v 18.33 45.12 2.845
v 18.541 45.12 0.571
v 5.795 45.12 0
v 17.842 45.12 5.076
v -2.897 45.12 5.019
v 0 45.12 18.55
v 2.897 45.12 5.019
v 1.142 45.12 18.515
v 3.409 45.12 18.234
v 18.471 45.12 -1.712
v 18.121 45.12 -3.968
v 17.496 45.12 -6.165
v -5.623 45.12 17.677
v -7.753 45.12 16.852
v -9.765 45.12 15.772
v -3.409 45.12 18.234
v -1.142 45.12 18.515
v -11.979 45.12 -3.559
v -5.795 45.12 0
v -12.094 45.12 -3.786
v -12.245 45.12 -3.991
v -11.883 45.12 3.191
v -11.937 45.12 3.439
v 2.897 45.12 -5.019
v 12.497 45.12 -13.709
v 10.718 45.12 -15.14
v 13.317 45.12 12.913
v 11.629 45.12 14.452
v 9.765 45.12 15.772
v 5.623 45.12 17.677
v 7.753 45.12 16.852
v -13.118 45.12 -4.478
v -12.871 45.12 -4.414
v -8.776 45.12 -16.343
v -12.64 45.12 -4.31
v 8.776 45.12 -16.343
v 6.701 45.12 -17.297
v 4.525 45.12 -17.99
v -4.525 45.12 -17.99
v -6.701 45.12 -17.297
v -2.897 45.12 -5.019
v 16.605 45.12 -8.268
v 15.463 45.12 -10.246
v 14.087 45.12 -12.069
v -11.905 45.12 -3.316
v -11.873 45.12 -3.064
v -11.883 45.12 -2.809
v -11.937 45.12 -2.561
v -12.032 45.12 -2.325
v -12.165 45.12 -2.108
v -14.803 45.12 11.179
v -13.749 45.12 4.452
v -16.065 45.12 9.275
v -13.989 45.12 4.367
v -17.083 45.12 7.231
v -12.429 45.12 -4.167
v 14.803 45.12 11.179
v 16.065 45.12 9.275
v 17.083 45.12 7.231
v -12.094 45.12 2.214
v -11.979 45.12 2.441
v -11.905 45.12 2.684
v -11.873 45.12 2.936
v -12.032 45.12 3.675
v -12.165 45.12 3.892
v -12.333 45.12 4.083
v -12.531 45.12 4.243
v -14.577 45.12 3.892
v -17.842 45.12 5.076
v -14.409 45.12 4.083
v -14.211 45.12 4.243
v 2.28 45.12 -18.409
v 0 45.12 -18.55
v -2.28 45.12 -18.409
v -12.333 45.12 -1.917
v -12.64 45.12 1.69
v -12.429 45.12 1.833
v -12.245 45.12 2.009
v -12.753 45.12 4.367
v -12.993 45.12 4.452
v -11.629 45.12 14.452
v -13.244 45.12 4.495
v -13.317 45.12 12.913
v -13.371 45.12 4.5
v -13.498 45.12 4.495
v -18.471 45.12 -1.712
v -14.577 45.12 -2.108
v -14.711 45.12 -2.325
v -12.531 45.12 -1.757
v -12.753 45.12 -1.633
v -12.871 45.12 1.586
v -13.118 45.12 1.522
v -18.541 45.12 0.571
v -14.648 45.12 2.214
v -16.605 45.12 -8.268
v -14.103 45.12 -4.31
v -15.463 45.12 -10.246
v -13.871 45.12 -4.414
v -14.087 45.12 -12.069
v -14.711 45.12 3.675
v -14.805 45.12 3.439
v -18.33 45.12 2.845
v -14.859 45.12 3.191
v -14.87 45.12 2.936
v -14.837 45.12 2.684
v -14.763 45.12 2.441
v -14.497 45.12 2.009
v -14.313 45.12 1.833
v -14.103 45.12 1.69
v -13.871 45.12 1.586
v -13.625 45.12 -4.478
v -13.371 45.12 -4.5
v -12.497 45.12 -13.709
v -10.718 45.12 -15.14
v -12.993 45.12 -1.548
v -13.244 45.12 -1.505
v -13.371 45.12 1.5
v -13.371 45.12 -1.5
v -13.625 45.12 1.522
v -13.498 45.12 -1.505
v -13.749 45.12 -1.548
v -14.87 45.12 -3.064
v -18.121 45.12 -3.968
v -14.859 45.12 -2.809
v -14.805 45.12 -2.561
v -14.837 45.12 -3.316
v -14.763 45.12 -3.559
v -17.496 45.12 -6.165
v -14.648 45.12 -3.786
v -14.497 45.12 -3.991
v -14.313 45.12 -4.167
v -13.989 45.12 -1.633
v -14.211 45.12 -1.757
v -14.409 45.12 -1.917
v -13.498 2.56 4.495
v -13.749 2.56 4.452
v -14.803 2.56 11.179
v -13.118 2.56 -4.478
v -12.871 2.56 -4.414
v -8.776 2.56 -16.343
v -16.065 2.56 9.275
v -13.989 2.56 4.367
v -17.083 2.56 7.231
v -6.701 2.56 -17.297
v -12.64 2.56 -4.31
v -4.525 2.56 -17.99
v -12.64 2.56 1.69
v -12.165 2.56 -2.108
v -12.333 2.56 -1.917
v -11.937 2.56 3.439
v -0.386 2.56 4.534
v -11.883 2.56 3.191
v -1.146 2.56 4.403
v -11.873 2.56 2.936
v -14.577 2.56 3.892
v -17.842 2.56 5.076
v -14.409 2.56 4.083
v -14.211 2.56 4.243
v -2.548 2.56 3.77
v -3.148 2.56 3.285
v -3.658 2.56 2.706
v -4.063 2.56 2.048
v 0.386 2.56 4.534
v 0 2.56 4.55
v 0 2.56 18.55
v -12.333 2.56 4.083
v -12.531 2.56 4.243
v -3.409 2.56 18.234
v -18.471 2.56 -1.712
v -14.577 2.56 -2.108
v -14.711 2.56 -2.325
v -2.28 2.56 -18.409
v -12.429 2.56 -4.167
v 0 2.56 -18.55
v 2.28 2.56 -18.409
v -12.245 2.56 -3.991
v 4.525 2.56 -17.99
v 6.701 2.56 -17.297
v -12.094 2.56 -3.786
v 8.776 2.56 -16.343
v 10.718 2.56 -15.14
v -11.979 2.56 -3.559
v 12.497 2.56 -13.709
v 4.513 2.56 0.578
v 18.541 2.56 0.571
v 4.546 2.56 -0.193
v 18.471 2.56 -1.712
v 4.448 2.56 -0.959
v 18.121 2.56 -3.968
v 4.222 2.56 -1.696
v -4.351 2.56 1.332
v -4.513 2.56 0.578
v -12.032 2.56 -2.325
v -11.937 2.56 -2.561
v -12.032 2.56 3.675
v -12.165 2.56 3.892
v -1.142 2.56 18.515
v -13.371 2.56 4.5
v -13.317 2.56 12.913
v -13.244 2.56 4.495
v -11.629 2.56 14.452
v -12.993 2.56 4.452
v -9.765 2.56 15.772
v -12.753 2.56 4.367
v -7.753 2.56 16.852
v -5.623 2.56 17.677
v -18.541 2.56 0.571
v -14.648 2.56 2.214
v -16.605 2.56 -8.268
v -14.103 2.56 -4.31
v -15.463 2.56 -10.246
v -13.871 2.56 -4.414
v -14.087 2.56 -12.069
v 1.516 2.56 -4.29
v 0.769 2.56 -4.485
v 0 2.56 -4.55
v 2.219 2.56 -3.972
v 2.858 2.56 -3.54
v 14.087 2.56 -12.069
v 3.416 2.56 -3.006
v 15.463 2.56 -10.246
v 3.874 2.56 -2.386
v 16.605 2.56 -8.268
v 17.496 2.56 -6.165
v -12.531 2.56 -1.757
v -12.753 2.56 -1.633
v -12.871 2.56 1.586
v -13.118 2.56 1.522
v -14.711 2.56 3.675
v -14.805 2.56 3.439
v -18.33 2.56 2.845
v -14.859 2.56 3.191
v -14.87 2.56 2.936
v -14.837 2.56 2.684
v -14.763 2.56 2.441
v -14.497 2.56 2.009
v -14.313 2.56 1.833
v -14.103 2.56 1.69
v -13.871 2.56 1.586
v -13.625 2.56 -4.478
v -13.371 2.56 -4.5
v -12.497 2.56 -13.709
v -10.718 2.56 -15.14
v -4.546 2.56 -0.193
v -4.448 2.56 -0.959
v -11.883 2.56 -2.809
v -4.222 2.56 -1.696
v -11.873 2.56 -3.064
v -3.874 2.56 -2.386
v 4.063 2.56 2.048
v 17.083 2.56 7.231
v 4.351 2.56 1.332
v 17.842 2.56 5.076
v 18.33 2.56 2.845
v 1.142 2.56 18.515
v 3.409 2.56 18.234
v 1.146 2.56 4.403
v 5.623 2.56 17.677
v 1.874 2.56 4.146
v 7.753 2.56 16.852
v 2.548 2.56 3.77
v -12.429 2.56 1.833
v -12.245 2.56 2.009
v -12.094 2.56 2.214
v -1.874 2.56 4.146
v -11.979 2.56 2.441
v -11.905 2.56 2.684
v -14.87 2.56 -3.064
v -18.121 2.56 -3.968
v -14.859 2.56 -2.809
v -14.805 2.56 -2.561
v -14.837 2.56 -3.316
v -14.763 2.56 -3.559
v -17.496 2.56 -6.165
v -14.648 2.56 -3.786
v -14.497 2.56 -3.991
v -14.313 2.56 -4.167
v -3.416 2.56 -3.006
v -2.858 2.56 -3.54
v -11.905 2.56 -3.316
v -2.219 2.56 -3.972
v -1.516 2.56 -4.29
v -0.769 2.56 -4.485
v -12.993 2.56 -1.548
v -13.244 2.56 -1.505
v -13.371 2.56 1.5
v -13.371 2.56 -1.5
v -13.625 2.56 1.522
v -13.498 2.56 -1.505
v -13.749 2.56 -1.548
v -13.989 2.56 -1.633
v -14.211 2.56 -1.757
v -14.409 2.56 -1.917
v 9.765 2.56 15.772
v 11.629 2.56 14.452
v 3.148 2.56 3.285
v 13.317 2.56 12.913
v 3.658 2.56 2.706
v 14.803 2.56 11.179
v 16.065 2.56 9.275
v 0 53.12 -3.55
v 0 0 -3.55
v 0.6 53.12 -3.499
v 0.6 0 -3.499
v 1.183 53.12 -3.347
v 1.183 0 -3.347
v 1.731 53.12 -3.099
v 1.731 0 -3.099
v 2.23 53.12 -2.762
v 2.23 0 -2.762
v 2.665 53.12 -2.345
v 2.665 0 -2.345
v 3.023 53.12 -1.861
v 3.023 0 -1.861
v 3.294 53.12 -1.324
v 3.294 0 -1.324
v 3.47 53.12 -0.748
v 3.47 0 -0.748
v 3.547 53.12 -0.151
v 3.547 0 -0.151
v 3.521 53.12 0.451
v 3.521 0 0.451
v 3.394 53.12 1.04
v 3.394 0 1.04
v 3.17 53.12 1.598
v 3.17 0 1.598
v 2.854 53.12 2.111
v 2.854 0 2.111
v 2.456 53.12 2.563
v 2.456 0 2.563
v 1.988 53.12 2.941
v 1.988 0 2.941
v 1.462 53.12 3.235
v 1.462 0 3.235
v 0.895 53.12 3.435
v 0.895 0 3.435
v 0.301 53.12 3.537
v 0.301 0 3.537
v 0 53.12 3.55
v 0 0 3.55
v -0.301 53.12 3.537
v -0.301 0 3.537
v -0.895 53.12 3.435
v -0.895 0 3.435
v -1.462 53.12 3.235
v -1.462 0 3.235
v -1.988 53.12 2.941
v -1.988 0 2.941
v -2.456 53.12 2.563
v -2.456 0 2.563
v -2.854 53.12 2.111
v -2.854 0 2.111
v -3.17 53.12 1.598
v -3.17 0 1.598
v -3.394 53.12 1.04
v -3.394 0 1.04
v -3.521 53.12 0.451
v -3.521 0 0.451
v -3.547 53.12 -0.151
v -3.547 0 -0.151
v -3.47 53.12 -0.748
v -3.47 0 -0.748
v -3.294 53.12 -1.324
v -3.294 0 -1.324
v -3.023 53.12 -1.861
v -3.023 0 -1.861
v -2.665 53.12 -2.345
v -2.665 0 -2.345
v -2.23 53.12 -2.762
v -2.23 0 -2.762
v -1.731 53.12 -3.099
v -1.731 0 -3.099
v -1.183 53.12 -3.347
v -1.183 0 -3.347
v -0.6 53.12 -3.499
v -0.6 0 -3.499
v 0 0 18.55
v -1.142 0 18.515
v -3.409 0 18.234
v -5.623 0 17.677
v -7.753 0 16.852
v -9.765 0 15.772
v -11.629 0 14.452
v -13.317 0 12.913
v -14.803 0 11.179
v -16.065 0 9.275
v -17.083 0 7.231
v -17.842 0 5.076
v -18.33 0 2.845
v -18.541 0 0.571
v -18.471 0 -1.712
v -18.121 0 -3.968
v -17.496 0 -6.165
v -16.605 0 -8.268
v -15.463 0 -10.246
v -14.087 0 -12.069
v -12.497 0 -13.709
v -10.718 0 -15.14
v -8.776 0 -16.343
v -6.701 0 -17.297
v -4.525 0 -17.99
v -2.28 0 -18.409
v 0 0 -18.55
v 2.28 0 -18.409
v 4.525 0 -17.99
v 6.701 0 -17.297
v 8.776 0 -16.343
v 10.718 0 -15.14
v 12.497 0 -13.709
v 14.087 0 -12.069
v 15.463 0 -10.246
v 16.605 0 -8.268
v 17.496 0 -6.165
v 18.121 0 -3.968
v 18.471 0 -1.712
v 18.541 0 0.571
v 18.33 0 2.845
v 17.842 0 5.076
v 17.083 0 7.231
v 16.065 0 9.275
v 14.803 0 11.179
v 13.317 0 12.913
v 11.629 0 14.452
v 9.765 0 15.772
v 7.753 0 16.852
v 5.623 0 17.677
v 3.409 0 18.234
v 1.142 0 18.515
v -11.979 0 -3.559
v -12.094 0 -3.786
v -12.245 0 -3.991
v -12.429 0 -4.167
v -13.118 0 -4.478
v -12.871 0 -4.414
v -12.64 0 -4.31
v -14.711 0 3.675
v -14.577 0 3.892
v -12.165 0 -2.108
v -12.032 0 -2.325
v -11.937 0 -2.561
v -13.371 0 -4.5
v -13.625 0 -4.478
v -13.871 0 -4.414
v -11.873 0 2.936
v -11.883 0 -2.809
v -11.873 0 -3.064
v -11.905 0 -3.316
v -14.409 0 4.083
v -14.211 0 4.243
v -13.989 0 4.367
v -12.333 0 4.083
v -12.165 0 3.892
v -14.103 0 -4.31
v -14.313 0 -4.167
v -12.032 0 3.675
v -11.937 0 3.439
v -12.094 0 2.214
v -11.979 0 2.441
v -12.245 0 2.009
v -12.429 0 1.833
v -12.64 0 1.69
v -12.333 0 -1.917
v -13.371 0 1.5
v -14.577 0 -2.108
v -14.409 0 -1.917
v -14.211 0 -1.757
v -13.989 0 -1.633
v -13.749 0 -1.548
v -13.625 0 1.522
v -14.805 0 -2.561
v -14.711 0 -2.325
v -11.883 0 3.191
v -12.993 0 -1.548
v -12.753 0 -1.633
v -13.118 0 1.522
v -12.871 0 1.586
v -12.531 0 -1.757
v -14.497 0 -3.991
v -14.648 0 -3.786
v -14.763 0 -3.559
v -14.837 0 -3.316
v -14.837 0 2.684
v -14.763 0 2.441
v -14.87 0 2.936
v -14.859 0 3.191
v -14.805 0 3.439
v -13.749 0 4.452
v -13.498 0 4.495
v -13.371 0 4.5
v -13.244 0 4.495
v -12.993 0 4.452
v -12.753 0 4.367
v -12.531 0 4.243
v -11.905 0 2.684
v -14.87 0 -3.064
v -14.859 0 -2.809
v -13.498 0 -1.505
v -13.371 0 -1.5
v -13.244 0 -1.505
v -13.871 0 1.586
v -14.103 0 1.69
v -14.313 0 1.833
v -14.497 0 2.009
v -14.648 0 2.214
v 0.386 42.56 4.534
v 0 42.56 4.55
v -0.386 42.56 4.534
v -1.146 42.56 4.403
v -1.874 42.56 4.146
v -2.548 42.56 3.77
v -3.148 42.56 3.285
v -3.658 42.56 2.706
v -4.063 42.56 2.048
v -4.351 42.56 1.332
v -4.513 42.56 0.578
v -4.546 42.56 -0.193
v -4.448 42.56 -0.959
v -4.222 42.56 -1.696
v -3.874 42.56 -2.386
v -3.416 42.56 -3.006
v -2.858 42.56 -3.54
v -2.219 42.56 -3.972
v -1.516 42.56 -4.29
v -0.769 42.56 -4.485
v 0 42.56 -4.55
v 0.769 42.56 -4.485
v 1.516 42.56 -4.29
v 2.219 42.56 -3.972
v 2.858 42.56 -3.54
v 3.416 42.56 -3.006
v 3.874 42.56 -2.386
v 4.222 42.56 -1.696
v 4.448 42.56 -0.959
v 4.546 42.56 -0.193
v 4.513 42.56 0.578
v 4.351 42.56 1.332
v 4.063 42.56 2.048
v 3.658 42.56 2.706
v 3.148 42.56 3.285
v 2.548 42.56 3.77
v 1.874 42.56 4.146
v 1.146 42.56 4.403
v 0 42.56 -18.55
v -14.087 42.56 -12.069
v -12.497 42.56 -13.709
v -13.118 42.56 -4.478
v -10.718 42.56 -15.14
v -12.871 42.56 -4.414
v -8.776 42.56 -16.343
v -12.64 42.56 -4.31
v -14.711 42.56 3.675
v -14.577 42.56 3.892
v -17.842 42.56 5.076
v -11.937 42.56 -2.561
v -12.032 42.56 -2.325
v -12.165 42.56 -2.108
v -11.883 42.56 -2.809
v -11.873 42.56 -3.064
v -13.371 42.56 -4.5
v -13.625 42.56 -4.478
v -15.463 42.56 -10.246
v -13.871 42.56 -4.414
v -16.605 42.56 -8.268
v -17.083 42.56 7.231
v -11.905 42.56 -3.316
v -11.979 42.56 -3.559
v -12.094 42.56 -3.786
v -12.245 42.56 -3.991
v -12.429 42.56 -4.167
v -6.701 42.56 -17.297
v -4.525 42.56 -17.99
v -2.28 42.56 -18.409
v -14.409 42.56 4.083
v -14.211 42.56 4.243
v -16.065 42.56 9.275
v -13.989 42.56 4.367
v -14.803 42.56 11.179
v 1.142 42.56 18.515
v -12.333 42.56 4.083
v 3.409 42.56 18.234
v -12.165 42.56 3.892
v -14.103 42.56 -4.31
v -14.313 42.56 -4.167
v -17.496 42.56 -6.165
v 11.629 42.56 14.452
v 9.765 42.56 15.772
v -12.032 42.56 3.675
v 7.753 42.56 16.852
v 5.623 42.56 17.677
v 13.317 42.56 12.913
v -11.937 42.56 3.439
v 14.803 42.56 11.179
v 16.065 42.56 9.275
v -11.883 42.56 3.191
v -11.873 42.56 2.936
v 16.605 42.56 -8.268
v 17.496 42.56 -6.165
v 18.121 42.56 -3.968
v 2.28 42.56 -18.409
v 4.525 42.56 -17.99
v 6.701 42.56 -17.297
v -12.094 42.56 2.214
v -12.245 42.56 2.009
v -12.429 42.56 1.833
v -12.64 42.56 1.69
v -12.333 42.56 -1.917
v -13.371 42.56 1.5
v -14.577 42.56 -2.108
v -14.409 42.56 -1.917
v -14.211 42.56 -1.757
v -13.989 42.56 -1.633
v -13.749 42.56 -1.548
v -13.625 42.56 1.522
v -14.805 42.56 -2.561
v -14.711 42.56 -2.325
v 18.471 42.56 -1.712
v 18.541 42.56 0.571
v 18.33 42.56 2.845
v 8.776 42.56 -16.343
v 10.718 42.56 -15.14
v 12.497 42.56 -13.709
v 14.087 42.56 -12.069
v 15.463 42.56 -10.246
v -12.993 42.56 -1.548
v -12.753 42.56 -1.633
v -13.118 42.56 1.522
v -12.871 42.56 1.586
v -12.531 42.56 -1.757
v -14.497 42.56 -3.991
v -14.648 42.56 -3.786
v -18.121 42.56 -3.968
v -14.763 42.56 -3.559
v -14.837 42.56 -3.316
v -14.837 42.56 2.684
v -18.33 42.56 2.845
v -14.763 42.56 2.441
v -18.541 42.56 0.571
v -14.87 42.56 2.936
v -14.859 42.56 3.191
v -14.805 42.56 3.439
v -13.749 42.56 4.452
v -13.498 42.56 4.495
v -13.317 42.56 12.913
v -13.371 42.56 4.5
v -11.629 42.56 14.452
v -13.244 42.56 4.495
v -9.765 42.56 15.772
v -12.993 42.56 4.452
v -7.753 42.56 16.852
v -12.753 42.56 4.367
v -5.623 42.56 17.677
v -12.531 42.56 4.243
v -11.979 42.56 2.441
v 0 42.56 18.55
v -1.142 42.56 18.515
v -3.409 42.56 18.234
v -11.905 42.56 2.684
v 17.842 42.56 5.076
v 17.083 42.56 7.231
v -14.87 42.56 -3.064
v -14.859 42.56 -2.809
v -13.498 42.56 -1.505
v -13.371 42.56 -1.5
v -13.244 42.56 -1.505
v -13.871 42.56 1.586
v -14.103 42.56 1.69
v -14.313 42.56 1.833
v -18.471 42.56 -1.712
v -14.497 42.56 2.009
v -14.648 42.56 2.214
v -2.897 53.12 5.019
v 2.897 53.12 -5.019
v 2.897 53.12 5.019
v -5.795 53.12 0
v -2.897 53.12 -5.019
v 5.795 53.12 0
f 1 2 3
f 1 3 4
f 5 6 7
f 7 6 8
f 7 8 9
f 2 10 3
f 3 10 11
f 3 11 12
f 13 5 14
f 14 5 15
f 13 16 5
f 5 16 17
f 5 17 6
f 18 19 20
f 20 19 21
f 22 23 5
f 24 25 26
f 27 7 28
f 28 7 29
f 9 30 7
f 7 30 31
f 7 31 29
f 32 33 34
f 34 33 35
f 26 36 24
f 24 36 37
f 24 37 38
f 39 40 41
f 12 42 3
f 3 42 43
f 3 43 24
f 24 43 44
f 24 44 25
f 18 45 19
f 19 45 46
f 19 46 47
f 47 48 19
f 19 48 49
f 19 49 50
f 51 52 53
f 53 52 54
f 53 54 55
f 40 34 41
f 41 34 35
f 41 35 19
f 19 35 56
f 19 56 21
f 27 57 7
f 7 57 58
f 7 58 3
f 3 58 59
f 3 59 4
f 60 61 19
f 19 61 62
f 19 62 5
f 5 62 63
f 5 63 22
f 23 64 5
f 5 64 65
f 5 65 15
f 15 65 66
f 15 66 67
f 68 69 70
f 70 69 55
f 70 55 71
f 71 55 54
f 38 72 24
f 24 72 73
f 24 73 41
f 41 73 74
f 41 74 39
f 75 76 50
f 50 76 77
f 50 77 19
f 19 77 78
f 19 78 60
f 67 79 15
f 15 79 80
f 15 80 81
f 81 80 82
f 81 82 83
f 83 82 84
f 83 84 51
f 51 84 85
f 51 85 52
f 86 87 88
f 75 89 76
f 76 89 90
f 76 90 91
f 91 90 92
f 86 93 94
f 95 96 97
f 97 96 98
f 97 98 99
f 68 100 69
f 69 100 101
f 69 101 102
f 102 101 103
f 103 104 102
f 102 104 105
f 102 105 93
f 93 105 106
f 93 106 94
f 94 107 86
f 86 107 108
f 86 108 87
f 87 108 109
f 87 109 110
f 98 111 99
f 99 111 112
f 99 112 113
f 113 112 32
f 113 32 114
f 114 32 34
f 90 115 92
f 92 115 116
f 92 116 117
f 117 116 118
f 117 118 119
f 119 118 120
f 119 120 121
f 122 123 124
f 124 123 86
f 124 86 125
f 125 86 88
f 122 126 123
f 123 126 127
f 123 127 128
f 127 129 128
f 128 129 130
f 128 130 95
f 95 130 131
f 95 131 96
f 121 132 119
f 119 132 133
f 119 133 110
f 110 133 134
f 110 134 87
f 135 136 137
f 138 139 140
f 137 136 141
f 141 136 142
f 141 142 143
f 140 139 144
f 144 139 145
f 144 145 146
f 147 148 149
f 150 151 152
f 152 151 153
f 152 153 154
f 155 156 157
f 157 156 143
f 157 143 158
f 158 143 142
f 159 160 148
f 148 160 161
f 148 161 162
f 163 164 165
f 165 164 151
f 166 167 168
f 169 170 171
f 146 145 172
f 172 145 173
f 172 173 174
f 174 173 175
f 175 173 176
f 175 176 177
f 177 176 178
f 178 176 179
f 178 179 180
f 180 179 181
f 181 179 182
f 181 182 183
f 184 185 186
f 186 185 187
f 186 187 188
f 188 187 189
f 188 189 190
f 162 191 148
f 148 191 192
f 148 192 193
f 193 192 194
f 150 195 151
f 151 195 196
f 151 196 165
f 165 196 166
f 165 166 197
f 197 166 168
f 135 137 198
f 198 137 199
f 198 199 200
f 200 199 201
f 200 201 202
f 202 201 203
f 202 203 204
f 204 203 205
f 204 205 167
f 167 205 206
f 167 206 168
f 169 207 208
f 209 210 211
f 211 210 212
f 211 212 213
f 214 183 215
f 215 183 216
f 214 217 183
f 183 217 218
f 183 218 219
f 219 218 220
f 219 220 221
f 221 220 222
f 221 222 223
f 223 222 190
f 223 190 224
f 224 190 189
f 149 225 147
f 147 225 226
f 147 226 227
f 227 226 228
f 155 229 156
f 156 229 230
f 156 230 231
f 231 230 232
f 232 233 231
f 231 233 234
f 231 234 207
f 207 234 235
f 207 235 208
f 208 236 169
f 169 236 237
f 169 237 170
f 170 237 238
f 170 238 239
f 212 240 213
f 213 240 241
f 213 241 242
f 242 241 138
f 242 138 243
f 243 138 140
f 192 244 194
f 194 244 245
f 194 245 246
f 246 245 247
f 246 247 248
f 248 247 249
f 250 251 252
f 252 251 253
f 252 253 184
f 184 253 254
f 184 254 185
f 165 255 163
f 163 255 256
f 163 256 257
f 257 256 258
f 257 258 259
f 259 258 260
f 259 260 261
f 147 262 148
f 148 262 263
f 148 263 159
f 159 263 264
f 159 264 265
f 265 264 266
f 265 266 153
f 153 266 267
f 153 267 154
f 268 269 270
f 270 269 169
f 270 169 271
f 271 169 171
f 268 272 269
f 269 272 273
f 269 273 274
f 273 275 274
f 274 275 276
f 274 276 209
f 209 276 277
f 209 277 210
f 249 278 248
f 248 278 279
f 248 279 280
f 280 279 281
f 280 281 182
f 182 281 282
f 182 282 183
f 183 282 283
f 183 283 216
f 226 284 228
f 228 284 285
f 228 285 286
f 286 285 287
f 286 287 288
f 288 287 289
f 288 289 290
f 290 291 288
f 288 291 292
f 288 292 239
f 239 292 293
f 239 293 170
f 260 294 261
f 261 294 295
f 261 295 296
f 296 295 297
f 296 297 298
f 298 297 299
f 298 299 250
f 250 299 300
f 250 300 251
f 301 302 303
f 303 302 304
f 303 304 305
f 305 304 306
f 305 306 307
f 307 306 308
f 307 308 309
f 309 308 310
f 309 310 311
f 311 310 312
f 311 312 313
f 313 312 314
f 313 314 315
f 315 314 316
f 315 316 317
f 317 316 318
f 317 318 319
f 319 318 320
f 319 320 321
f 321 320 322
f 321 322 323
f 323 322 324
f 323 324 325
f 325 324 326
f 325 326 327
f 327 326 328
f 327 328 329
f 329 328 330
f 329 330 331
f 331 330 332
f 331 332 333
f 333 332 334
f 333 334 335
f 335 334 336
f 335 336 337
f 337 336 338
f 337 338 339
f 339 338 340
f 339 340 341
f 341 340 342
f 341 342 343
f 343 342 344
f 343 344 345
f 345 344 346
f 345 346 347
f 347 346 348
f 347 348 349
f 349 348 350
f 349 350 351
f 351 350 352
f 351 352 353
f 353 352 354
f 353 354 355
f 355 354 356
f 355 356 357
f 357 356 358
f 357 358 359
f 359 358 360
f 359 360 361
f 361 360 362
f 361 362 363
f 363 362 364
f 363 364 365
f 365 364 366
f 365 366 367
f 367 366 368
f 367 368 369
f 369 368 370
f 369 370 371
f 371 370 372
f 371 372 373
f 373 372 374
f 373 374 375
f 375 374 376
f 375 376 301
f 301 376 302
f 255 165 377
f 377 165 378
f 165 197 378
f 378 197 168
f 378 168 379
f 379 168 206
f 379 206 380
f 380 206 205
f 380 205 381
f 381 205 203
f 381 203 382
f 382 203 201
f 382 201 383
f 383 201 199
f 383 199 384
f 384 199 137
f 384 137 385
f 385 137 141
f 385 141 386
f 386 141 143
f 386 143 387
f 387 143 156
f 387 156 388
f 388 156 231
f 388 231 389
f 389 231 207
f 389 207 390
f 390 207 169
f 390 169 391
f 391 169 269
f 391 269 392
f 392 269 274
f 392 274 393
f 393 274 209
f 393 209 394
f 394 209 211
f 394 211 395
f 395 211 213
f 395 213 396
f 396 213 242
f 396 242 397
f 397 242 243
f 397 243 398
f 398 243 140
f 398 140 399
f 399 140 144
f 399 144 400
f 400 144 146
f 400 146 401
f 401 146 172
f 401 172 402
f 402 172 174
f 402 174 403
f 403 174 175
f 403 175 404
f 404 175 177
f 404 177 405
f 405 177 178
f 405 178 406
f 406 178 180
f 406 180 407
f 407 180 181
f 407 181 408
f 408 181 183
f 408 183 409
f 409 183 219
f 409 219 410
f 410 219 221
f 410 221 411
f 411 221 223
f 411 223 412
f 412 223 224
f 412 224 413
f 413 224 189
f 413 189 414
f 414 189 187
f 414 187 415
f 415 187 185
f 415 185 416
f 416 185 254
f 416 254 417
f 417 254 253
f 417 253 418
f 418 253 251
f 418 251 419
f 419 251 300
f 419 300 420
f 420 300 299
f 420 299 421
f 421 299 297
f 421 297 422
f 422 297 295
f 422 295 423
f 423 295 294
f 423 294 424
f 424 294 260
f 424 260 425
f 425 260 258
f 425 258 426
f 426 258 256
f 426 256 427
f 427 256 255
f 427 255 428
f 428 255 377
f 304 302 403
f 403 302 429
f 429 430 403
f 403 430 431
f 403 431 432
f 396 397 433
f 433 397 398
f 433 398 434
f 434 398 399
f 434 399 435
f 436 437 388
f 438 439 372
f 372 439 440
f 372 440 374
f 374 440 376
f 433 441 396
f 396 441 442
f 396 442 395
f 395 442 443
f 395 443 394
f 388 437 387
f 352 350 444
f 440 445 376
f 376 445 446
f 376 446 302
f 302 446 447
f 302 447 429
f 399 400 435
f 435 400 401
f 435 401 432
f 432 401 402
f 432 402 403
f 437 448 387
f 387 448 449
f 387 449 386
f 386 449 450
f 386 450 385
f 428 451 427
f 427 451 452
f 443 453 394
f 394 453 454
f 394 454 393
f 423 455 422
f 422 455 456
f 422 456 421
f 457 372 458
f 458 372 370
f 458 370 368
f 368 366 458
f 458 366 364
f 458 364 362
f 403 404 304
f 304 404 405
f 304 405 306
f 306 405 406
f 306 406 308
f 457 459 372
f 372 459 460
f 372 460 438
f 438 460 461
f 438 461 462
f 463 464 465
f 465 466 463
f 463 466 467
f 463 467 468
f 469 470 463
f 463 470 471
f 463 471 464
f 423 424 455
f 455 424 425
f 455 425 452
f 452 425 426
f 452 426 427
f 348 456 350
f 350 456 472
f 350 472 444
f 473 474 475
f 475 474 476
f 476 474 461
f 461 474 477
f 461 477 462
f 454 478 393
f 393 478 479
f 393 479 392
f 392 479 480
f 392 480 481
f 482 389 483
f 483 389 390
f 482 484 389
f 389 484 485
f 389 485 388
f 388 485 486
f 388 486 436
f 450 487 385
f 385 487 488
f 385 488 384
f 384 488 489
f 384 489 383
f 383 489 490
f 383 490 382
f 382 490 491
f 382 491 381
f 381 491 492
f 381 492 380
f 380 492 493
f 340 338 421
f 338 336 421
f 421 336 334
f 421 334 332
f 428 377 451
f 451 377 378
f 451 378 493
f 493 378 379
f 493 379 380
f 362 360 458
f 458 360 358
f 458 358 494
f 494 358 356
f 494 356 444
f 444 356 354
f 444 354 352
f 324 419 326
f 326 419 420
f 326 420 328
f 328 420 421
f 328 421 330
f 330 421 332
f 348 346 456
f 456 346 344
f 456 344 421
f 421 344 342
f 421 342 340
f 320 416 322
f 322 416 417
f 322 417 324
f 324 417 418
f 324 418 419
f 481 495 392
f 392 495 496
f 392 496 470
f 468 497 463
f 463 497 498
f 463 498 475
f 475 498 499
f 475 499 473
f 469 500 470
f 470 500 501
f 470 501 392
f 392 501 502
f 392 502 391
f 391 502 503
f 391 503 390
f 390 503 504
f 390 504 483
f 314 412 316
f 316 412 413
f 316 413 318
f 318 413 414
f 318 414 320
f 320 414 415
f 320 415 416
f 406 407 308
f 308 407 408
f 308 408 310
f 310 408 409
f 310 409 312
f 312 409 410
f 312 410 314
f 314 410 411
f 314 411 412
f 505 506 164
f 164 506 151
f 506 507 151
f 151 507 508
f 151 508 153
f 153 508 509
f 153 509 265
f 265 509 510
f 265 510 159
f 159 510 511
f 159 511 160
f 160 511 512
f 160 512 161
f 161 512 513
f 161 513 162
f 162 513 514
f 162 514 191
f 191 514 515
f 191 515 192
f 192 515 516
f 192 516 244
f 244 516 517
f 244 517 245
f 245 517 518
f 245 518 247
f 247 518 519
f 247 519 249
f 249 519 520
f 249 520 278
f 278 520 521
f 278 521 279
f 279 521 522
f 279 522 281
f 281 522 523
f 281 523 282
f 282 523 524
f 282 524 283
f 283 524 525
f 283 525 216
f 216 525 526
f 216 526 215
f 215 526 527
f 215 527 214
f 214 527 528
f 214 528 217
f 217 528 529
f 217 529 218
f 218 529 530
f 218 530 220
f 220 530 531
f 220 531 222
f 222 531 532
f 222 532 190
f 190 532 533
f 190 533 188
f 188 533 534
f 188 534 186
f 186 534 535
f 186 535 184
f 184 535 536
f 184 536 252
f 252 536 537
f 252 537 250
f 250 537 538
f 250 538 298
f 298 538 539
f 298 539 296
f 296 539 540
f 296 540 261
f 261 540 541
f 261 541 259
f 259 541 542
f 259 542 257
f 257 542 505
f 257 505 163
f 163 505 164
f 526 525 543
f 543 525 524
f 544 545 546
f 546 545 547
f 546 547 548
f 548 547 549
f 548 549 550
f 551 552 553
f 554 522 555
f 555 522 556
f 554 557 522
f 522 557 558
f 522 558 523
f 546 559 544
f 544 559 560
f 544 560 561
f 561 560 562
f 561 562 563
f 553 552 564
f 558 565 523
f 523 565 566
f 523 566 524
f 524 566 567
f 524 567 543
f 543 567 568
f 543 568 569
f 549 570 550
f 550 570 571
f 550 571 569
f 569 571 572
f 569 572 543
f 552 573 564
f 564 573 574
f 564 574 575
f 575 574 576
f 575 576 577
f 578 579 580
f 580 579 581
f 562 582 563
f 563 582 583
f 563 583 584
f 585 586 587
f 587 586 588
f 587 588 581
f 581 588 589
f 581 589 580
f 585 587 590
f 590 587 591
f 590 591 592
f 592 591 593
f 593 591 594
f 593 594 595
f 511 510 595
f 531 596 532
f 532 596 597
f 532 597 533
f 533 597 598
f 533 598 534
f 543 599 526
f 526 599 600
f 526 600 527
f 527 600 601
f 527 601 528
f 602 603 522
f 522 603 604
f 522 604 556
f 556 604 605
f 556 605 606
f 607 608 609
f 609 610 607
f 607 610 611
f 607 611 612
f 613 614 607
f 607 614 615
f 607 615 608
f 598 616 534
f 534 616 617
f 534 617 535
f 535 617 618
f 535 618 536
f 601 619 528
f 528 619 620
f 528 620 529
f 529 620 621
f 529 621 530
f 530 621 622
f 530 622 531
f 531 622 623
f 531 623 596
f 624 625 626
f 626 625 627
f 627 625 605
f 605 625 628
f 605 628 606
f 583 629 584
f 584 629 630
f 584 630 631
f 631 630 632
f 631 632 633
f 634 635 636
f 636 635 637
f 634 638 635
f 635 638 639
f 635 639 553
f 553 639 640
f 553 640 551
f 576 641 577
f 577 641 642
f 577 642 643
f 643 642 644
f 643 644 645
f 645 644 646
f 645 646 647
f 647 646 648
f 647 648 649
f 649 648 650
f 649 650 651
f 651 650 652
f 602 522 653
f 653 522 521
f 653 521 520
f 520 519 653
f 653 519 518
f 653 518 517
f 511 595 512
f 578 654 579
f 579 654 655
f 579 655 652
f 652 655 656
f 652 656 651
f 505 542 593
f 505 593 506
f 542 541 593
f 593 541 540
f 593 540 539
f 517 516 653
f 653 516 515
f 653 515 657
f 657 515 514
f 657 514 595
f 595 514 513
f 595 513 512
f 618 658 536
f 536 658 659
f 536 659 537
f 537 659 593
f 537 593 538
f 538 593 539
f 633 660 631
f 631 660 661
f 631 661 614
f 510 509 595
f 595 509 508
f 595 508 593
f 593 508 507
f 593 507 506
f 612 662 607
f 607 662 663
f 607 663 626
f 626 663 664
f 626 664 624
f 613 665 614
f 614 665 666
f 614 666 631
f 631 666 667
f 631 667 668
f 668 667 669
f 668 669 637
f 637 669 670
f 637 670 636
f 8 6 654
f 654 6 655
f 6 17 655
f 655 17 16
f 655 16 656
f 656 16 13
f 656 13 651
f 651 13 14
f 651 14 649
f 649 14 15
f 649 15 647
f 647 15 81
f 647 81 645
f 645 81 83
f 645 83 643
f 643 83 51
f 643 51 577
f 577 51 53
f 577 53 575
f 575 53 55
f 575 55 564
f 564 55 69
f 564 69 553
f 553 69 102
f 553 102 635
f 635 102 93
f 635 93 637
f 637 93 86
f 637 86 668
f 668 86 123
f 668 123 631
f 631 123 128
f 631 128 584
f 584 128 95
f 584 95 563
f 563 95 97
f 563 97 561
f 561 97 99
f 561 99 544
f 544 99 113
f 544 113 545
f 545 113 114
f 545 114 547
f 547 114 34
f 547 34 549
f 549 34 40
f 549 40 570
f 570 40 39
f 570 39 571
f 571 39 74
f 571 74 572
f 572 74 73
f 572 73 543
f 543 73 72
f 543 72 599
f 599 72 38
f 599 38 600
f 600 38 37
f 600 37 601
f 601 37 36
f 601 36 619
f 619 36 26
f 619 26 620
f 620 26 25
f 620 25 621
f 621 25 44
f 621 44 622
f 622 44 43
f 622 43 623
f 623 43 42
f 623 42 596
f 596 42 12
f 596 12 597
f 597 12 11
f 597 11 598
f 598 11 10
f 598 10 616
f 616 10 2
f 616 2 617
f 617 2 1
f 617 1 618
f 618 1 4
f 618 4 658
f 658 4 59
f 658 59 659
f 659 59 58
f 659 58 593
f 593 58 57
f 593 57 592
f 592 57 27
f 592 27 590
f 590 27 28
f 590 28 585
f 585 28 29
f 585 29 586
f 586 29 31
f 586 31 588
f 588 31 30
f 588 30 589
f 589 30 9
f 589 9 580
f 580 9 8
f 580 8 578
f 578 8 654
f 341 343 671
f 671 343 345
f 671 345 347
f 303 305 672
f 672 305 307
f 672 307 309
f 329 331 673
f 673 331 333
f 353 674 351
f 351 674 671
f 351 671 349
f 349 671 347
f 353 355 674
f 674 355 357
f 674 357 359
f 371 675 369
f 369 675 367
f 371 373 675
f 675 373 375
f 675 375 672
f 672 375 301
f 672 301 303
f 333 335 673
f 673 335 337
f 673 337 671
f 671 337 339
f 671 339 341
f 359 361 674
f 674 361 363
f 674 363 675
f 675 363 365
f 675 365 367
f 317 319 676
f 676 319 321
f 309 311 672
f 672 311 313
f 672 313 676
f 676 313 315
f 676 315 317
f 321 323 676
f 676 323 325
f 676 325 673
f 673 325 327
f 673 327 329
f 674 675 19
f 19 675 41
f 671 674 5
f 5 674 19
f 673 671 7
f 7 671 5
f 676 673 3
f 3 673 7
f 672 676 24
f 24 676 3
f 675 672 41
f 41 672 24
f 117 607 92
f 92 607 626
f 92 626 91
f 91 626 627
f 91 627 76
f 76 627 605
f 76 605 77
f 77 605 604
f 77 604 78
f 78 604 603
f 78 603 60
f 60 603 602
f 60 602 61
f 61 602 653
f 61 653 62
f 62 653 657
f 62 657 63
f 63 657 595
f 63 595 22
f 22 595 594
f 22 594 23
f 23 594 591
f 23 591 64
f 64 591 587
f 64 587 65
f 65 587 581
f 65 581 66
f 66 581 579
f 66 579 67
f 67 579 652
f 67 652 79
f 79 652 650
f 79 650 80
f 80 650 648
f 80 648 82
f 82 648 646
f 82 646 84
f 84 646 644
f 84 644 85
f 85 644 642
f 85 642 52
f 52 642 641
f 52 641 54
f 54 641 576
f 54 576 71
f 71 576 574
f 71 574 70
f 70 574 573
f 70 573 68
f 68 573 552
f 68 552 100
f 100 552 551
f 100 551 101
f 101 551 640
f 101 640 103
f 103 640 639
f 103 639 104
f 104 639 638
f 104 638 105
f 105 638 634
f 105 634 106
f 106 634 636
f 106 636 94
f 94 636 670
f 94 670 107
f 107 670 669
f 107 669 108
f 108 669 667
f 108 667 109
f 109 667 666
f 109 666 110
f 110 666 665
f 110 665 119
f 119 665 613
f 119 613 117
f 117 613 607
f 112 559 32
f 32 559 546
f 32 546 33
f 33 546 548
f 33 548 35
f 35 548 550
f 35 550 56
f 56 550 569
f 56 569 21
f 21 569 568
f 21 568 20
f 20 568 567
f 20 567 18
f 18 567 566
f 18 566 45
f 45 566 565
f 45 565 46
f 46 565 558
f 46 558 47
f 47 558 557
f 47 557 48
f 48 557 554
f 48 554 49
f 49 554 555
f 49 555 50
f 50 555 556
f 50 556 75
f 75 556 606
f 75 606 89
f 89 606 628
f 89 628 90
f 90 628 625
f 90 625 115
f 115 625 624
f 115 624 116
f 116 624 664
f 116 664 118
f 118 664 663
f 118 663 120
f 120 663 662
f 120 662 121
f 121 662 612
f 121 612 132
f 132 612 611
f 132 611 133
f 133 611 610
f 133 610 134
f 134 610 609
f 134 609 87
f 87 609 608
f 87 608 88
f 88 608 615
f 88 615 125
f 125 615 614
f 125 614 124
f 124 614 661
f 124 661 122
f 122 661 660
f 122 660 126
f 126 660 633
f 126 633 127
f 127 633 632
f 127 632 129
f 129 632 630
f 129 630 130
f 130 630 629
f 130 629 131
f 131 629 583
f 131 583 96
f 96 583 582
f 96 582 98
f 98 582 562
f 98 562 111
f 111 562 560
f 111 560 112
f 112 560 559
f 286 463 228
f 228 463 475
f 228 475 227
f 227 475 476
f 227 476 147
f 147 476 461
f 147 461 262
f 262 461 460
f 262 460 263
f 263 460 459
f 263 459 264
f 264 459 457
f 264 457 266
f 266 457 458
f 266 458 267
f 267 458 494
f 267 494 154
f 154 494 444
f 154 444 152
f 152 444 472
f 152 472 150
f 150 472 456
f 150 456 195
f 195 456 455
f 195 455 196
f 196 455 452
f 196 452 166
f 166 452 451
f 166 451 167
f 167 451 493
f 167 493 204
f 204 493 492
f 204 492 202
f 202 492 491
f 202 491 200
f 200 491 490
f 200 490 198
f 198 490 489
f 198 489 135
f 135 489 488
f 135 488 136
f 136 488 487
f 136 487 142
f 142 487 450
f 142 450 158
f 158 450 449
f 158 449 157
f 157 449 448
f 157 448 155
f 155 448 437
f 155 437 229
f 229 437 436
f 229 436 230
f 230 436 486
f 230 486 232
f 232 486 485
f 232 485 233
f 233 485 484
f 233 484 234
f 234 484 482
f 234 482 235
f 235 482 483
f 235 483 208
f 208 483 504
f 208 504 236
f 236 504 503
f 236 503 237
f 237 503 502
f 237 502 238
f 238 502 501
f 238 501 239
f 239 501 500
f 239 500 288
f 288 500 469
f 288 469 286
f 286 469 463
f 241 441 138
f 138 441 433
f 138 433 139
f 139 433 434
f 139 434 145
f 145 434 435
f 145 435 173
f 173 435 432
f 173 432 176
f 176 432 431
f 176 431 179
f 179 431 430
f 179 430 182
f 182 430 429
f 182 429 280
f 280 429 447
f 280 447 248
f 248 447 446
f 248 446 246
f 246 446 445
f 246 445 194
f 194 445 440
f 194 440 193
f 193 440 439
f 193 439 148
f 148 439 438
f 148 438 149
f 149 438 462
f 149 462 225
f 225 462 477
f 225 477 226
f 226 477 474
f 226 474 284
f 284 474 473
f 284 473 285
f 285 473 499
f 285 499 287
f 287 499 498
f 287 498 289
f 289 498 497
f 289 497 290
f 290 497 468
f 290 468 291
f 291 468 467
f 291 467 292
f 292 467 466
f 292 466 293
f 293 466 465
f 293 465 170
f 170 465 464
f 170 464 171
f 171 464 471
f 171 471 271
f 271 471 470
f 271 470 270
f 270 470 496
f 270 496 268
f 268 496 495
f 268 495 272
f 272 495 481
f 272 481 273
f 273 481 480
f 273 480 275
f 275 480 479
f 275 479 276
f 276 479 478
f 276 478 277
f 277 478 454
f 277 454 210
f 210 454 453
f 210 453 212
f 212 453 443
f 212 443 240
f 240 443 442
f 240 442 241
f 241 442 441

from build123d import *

# Parameters (mm, degrees)
SKETCH1_R               = 18.55
SKETCH1_R_2             = 3.55
BOSS_EXTRUDE1_DEPTH     = 2.56
SKETCH2_R               = 4.55
SKETCH2_R_2             = 3.55
BOSS_EXTRUDE2_DEPTH     = 20
SKETCH5_R               = 18.55
SKETCH5_R_2             = 3.55
BOSS_EXTRUDE3_DEPTH     = 2.56
SKETCH6_R               = 3.55
BOSS_EXTRUDE4_DEPTH     = 8
SKETCH7_R               = 1.5
CUT_EXTRUDE1_DEPTH      = 60.244741539
CUT_EXTRUDE1_DEPTH_BACK = 60.244741539


with BuildPart() as part:
    # Sketch1 → Boss-Extrude1 (new body)
    with BuildSketch(Plane(origin=(0, 0, 0), x_dir=(1, 0, 0), z_dir=(0, 1, 0))):
        with Locations(Location((0, 0, 0), (0, 0, 90))):
            Circle(SKETCH1_R)
        with Locations(Location((0, 0, 0), (0, 0, 90))):
            Circle(SKETCH1_R_2, mode=Mode.SUBTRACT)
    extrude(amount=BOSS_EXTRUDE1_DEPTH)

    # Sketch2 → Boss-Extrude2 (add)
    with BuildSketch(Plane(origin=(0, 2.56, 0), x_dir=(1, 0, 0), z_dir=(0, 1, 0))):
        with Locations(Location((0, 0, 0), (0, 0, 270))):
            Circle(SKETCH2_R)
        with Locations(Location((0, 0, 0), (0, 0, 90))):
            Circle(SKETCH2_R_2, mode=Mode.SUBTRACT)
    boss_extrude2 = extrude(amount=BOSS_EXTRUDE2_DEPTH)

    # Mirror1: Boss-Extrude2 across plane
    add(boss_extrude2.mirror(Plane.ZX.offset(22.56)))

    # Sketch5 → Boss-Extrude3 (add)
    with BuildSketch(Plane(origin=(0, 42.56, 0), x_dir=(1, 0, 0), z_dir=(0, 1, 0))):
        with Locations(Location((0, 0, 0), (0, 0, 90))):
            Circle(SKETCH5_R)
        with Locations(Location((0, 0, 0), (0, 0, 90))):
            Circle(SKETCH5_R_2, mode=Mode.SUBTRACT)
    extrude(amount=BOSS_EXTRUDE3_DEPTH)

    # Sketch6 → Boss-Extrude4 (add)
    with BuildSketch(Plane(origin=(0, 45.12, 0), x_dir=(1, 0, 0), z_dir=(0, 1, 0))):
        Polygon((-5.794958779, 0), (-2.897479389, -5.018581516), (2.897479389, -5.018581516), (5.794958779, 0), (2.897479389, 5.018581516), (-2.897479389, 5.018581516), align=None)
        with Locations(Location((0, 0, 0), (0, 0, 90))):
            Circle(SKETCH6_R, mode=Mode.SUBTRACT)
    extrude(amount=BOSS_EXTRUDE4_DEPTH)

    # Sketch7 → Cut-Extrude1 (cut, two sides)
    with BuildSketch(Plane.XZ) as cut_extrude1_sk:
        with Locations(Location((-13.371154887, -3, 0), (0, 0, 270))):
            Circle(SKETCH7_R)
        with Locations(Location((-13.371154887, 3, 0), (0, 0, 270))):
            Circle(SKETCH7_R)
    extrude(amount=CUT_EXTRUDE1_DEPTH, mode=Mode.SUBTRACT)
    extrude(cut_extrude1_sk.sketch, amount=-CUT_EXTRUDE1_DEPTH_BACK, mode=Mode.SUBTRACT)


solid = part.part
